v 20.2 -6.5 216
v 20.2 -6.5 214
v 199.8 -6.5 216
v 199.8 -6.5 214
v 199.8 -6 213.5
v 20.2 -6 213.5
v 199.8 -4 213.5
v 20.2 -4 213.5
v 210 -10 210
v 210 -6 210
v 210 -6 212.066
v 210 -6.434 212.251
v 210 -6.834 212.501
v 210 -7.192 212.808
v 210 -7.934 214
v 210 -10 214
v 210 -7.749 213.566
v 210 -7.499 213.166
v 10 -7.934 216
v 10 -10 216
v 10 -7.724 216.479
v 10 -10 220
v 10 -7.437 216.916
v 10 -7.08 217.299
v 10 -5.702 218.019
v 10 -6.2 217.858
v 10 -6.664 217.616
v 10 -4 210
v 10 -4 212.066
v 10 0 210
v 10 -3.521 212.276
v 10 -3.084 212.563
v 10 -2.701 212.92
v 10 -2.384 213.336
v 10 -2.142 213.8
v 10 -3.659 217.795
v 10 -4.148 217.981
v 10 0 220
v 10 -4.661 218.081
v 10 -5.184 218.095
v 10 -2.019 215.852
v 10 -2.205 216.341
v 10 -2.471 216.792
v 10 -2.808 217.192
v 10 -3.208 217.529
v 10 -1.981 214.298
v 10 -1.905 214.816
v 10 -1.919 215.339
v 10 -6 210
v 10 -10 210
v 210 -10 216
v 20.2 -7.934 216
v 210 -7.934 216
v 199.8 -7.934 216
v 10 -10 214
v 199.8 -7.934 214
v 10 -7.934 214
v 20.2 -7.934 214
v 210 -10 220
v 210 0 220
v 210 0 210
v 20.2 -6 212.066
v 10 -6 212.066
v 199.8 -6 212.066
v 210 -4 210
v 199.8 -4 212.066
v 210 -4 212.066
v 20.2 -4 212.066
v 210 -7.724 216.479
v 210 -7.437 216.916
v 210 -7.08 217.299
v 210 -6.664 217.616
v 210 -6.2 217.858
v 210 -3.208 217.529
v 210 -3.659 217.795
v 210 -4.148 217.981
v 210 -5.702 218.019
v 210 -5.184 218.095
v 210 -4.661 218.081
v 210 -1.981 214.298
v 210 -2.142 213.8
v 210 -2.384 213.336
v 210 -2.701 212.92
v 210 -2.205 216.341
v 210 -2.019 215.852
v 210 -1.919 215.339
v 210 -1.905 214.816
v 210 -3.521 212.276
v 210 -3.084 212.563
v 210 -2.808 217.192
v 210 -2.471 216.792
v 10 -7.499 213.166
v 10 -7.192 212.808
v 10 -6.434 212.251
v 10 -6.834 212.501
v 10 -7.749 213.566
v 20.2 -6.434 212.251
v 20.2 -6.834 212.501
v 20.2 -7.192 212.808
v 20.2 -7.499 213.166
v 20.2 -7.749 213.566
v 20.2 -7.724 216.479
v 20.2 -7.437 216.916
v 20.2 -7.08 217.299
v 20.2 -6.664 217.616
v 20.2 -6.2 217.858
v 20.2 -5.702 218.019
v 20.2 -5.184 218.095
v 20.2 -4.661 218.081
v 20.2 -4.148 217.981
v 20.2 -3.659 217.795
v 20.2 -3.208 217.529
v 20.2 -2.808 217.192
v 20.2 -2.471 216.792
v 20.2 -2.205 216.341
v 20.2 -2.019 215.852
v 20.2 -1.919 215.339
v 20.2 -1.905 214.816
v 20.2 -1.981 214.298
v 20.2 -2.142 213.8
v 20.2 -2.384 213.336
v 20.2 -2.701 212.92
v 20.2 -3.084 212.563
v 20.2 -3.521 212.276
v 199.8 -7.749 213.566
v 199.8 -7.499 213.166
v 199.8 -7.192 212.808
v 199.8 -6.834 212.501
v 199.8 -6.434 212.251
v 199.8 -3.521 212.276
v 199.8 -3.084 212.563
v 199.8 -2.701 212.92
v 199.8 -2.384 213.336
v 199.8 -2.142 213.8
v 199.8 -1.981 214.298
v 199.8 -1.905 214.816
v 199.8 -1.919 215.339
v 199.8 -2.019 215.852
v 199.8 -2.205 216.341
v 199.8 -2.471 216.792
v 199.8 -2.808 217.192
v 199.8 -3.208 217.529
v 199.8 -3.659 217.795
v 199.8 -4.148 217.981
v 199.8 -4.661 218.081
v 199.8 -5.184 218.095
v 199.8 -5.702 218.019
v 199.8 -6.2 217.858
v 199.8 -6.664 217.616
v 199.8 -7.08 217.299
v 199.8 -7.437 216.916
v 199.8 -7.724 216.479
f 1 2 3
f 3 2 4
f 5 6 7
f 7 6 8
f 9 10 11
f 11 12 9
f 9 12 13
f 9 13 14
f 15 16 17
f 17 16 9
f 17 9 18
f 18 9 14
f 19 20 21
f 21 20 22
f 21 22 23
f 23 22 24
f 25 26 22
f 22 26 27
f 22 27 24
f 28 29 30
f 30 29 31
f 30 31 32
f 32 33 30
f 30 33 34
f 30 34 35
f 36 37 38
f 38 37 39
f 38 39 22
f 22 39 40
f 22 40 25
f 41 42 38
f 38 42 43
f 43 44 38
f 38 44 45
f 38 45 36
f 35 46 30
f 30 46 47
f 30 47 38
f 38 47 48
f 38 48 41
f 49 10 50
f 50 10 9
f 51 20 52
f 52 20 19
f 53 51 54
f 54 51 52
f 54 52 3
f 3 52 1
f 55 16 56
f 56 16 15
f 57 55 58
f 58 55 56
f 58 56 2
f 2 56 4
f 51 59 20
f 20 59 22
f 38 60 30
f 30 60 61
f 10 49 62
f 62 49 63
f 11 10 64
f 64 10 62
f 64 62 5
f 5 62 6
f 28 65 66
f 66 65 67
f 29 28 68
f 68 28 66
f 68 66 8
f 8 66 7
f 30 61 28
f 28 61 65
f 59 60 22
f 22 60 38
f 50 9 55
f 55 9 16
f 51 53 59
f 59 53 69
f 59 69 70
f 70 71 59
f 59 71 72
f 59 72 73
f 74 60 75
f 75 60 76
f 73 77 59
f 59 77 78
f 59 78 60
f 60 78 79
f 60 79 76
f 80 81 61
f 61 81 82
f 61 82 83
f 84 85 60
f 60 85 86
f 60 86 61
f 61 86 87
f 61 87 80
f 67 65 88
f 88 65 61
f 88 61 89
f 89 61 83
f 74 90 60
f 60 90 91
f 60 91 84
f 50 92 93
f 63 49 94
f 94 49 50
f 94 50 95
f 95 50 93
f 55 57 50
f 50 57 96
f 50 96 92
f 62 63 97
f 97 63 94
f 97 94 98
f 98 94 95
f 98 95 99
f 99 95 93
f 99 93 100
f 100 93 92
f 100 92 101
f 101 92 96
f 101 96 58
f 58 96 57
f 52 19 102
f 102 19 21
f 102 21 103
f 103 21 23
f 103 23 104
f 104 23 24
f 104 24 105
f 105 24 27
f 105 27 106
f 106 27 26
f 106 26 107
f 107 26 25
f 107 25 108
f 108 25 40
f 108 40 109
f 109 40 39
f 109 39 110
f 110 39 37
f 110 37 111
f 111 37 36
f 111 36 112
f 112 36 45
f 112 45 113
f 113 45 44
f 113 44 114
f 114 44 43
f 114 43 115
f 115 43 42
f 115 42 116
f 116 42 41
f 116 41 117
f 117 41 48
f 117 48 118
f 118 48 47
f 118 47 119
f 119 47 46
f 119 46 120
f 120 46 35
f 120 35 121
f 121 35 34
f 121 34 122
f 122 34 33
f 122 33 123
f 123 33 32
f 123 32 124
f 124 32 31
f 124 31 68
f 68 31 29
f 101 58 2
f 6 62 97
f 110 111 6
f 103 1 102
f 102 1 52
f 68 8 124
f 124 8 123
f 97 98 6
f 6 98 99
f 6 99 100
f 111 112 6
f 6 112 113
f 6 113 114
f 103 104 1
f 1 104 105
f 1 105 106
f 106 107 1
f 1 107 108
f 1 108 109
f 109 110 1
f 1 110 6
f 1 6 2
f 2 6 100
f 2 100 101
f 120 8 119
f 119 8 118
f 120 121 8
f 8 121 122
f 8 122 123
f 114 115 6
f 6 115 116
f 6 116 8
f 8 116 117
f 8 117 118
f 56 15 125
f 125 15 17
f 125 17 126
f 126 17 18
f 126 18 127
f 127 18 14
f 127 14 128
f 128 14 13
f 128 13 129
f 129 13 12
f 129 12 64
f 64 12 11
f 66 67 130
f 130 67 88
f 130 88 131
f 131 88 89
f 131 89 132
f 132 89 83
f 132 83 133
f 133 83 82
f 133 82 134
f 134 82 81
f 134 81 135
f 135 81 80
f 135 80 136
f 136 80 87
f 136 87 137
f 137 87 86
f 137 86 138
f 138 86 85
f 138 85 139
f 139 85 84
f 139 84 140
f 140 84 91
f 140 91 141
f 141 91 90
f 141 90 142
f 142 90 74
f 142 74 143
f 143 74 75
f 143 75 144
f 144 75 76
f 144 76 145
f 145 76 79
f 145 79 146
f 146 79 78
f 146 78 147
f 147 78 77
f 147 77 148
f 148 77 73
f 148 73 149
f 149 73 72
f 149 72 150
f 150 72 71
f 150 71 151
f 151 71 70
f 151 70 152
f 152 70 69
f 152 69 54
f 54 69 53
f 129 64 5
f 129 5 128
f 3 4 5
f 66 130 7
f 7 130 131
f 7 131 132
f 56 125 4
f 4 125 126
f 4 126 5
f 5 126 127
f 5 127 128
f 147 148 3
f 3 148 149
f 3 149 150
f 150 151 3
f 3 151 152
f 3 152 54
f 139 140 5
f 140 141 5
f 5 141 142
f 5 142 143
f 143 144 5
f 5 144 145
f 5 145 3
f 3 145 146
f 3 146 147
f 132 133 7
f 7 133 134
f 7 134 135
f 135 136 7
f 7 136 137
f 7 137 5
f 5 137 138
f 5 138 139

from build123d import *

# Parameters (mm, degrees)
CROQUIS2_W                   = 220
CROQUIS2_H                   = 220
CROQUIS2_W_2                 = 200
CROQUIS2_H_2                 = 200
SALIENTE_EXTRUIR1_DEPTH      = 10
CROQUIS3_W                   = 212
CROQUIS3_H                   = 212
CROQUIS3_W_2                 = 210
CROQUIS3_H_2                 = 210
CROQUIS3_W_3                 = 208
CROQUIS3_H_3                 = 208
CORTAR_EXTRUIR1_DEPTH        = 3.5
CROQUIS4_W                   = 10
CROQUIS4_H                   = 10
SALIENTE_EXTRUIR2_DEPTH      = 200
SALIENTE_EXTRUIR2_DEPTH_BACK = 10
CROQUIS6_W                   = 3.5
CROQUIS6_H                   = 2
CROQUIS6_W_2                 = 2
CROQUIS6_H_2                 = 3.5
CROQUIS6_W_3                 = 1.99805467
CORTAR_EXTRUIR2_DEPTH        = 203.5
CROQUIS7_W                   = 220
CROQUIS7_H                   = 220
CROQUIS7_W_2                 = 200
CROQUIS7_H_2                 = 200
SALIENTE_EXTRUIR3_DEPTH      = 10
CORTAR_EXTRUIR3_START        = -3.5
CROQUIS8_W                   = 207
CROQUIS8_H                   = 2
CORTAR_EXTRUIR3_DEPTH        = 207
MATRIZC1_COUNT               = 4
CROQUIS9_W                   = 86
CROQUIS9_H                   = 16
BRAZOS_DEPTH                 = 10
MATRIZC2_COUNT               = 4
CORTAR_EXTRUIR4_DEPTH        = 221
CORTAR_EXTRUIR6_DEPTH        = 11
CROQUIS12_R                  = 3.1
CORTAR_EXTRUIR7_DEPTH        = 10.2
CROQUIS13_R                  = 3.1
CORTAR_EXTRUIR8_DEPTH        = 10.2


with BuildPart() as part:
    # Croquis2 → Saliente-Extruir1 (new body)
    with BuildSketch(Plane.XY):
        with Locations((110, -110)):
            Rectangle(CROQUIS2_W, CROQUIS2_H)
        with Locations((110, -110)):
            Rectangle(CROQUIS2_W_2, CROQUIS2_H_2, mode=Mode.SUBTRACT)
    extrude(amount=SALIENTE_EXTRUIR1_DEPTH)

    # Croquis3 → Cortar-Extruir1 (cut)
    with BuildSketch(Plane.XY.offset(10)):
        with Locations((110, -110)):
            Rectangle(CROQUIS3_W, CROQUIS3_H)
        with Locations((110, -110)):
            Rectangle(CROQUIS3_W_2, CROQUIS3_H_2, mode=Mode.SUBTRACT)
        with Locations((110, -110)):
            Rectangle(CROQUIS3_W_2, CROQUIS3_H_2)
        with Locations((110, -110)):
            Rectangle(CROQUIS3_W_3, CROQUIS3_H_3, mode=Mode.SUBTRACT)
    extrude(amount=-CORTAR_EXTRUIR1_DEPTH, mode=Mode.SUBTRACT)

    # Croquis4 → Saliente-Extruir2 (add, two sides)
    with BuildSketch(Plane.XY.offset(10)) as saliente_extruir2_sk:
        with Locations((5, -5)):
            Rectangle(CROQUIS4_W, CROQUIS4_H)
        with Locations((215, -5)):
            Rectangle(CROQUIS4_W, CROQUIS4_H)
        with Locations((215, -215)):
            Rectangle(CROQUIS4_W, CROQUIS4_H)
        with Locations((5, -215)):
            Rectangle(CROQUIS4_W, CROQUIS4_H)
    extrude(amount=SALIENTE_EXTRUIR2_DEPTH)
    extrude(saliente_extruir2_sk.sketch, amount=-SALIENTE_EXTRUIR2_DEPTH_BACK)

    # Croquis6 → Cortar-Extruir2 (cut)
    with BuildSketch(Plane.XY.offset(210)):
        with Locations((8.25, -5)):
            Rectangle(CROQUIS6_W, CROQUIS6_H)
        with Locations((5, -8.25)):
            Rectangle(CROQUIS6_W_2, CROQUIS6_H_2)
        with Locations((211.75, -5)):
            Rectangle(CROQUIS6_W, CROQUIS6_H)
        with Locations((215, -8.25)):
            Rectangle(CROQUIS6_W_2, CROQUIS6_H_2)
        with Locations((211.75, -215)):
            Rectangle(CROQUIS6_W, CROQUIS6_H)
        with Locations((215.000972665, -211.75)):
            Rectangle(CROQUIS6_W_3, CROQUIS6_H_2)
        with Locations((5, -211.75)):
            Rectangle(CROQUIS6_W_2, CROQUIS6_H_2)
        with Locations((8.25, -215)):
            Rectangle(CROQUIS6_W, CROQUIS6_H)
    extrude(amount=-CORTAR_EXTRUIR2_DEPTH, mode=Mode.SUBTRACT)

    # Croquis7 → Saliente-Extruir3 (add)
    with BuildSketch(Plane.XY.offset(210)):
        with Locations((110, -110)):
            Rectangle(CROQUIS7_W, CROQUIS7_H)
        with Locations((110, -110)):
            Rectangle(CROQUIS7_W_2, CROQUIS7_H_2, mode=Mode.SUBTRACT)
    extrude(amount=SALIENTE_EXTRUIR3_DEPTH)

    # Croquis8 → Cortar-Extruir3 (cut)
    with BuildSketch(Plane(origin=(0, -210, 0), x_dir=(1, 0, 0), z_dir=(0, 1, 0)).offset(CORTAR_EXTRUIR3_START)):
        with Locations((110, -215)):
            Rectangle(CROQUIS8_W, CROQUIS8_H)
    cortar_extruir3 = extrude(amount=CORTAR_EXTRUIR3_DEPTH, mode=Mode.SUBTRACT)

    # MatrizC1: Cortar-Extruir3 ×4 about axis
    matrizc1_axis = Axis((0, -110, 110), (1, 0, 0))
    for i in range(1, MATRIZC1_COUNT):
        add(cortar_extruir3.rotate(matrizc1_axis, i * 360 / MATRIZC1_COUNT), mode=Mode.SUBTRACT)

    # Croquis9 → Brazos (add)
    with BuildSketch(Plane.XY.offset(220)):
        with Locations((43, -110)):
            Rectangle(CROQUIS9_W, CROQUIS9_H)
        with BuildLine():
            ThreePointArc((71.801526277, -112.25), (69.551526277, -110), (71.801526277, -107.75))
            Line((71.801526277, -107.75), (75, -107.75))
            ThreePointArc((75, -107.75), (77.25, -110), (75, -112.25))
            Line((75, -112.25), (71.801526277, -112.25))
        make_face(mode=Mode.SUBTRACT)
        with Locations((177, -110)):
            Rectangle(CROQUIS9_W, CROQUIS9_H)
        with BuildLine():
            Line((145, -107.75), (148.198473723, -107.75))
            ThreePointArc((148.198473723, -107.75), (150.448473723, -110), (148.198473723, -112.25))
            Line((148.198473723, -112.25), (145, -112.25))
            ThreePointArc((145, -112.25), (142.75, -110), (145, -107.75))
        make_face(mode=Mode.SUBTRACT)
    extrude(amount=-BRAZOS_DEPTH)

    # MatrizC2: Cortar-Extruir3 ×4 about axis
    matrizc2_axis = Axis((110, 0, 110), (0, 1, 0))
    for i in range(1, MATRIZC2_COUNT):
        add(cortar_extruir3.rotate(matrizc2_axis, i * 360 / MATRIZC2_COUNT), mode=Mode.SUBTRACT)

    # Croquis10 → Cortar-Extruir4 (cut, through all)
    with BuildSketch(Plane(origin=(0, 0, 0), x_dir=(1, 0, 0), z_dir=(0, 1, 0))):
        Polygon((210, -210), (-54.613887122, -210), (-54.613887122, 5.730335669), (210, 5.730335669), (296.699829043, 5.730335669), (296.699829043, -210), align=None)
    extrude(amount=-CORTAR_EXTRUIR4_DEPTH, mode=Mode.SUBTRACT)

    # Croquis11 → Cortar-Extruir6 (cut, through all)
    with BuildSketch(Plane.XY.offset(220)):
        Polygon((225.348159566, -10), (300.018724731, -10), (300.018724731, -229.853044827), (10, -229.853044827), (-53.650825238, -229.853044827), (-53.650825238, -10), (-6.520912183, -10), (-6.520912183, 9.079623398), (10, 9.079623398), (10, -10), (210, -10), (210, 9.87282219), (225.348159566, 9.87282219), align=None)
    extrude(amount=-CORTAR_EXTRUIR6_DEPTH, mode=Mode.SUBTRACT)

    # Croquis12 → Cortar-Extruir7 (cut)
    with BuildSketch(Plane.ZY.offset(-10)):
        with Locations((215, -5)):
            Circle(CROQUIS12_R)
    extrude(amount=-CORTAR_EXTRUIR7_DEPTH, mode=Mode.SUBTRACT)

    # Croquis13 → Cortar-Extruir8 (cut)
    with BuildSketch(Plane(origin=(210, 0, 0), x_dir=(0, 0, -1), z_dir=(1, 0, 0))):
        with Locations((-215, -5)):
            Circle(CROQUIS13_R)
    extrude(amount=-CORTAR_EXTRUIR8_DEPTH, mode=Mode.SUBTRACT)


solid = part.part
